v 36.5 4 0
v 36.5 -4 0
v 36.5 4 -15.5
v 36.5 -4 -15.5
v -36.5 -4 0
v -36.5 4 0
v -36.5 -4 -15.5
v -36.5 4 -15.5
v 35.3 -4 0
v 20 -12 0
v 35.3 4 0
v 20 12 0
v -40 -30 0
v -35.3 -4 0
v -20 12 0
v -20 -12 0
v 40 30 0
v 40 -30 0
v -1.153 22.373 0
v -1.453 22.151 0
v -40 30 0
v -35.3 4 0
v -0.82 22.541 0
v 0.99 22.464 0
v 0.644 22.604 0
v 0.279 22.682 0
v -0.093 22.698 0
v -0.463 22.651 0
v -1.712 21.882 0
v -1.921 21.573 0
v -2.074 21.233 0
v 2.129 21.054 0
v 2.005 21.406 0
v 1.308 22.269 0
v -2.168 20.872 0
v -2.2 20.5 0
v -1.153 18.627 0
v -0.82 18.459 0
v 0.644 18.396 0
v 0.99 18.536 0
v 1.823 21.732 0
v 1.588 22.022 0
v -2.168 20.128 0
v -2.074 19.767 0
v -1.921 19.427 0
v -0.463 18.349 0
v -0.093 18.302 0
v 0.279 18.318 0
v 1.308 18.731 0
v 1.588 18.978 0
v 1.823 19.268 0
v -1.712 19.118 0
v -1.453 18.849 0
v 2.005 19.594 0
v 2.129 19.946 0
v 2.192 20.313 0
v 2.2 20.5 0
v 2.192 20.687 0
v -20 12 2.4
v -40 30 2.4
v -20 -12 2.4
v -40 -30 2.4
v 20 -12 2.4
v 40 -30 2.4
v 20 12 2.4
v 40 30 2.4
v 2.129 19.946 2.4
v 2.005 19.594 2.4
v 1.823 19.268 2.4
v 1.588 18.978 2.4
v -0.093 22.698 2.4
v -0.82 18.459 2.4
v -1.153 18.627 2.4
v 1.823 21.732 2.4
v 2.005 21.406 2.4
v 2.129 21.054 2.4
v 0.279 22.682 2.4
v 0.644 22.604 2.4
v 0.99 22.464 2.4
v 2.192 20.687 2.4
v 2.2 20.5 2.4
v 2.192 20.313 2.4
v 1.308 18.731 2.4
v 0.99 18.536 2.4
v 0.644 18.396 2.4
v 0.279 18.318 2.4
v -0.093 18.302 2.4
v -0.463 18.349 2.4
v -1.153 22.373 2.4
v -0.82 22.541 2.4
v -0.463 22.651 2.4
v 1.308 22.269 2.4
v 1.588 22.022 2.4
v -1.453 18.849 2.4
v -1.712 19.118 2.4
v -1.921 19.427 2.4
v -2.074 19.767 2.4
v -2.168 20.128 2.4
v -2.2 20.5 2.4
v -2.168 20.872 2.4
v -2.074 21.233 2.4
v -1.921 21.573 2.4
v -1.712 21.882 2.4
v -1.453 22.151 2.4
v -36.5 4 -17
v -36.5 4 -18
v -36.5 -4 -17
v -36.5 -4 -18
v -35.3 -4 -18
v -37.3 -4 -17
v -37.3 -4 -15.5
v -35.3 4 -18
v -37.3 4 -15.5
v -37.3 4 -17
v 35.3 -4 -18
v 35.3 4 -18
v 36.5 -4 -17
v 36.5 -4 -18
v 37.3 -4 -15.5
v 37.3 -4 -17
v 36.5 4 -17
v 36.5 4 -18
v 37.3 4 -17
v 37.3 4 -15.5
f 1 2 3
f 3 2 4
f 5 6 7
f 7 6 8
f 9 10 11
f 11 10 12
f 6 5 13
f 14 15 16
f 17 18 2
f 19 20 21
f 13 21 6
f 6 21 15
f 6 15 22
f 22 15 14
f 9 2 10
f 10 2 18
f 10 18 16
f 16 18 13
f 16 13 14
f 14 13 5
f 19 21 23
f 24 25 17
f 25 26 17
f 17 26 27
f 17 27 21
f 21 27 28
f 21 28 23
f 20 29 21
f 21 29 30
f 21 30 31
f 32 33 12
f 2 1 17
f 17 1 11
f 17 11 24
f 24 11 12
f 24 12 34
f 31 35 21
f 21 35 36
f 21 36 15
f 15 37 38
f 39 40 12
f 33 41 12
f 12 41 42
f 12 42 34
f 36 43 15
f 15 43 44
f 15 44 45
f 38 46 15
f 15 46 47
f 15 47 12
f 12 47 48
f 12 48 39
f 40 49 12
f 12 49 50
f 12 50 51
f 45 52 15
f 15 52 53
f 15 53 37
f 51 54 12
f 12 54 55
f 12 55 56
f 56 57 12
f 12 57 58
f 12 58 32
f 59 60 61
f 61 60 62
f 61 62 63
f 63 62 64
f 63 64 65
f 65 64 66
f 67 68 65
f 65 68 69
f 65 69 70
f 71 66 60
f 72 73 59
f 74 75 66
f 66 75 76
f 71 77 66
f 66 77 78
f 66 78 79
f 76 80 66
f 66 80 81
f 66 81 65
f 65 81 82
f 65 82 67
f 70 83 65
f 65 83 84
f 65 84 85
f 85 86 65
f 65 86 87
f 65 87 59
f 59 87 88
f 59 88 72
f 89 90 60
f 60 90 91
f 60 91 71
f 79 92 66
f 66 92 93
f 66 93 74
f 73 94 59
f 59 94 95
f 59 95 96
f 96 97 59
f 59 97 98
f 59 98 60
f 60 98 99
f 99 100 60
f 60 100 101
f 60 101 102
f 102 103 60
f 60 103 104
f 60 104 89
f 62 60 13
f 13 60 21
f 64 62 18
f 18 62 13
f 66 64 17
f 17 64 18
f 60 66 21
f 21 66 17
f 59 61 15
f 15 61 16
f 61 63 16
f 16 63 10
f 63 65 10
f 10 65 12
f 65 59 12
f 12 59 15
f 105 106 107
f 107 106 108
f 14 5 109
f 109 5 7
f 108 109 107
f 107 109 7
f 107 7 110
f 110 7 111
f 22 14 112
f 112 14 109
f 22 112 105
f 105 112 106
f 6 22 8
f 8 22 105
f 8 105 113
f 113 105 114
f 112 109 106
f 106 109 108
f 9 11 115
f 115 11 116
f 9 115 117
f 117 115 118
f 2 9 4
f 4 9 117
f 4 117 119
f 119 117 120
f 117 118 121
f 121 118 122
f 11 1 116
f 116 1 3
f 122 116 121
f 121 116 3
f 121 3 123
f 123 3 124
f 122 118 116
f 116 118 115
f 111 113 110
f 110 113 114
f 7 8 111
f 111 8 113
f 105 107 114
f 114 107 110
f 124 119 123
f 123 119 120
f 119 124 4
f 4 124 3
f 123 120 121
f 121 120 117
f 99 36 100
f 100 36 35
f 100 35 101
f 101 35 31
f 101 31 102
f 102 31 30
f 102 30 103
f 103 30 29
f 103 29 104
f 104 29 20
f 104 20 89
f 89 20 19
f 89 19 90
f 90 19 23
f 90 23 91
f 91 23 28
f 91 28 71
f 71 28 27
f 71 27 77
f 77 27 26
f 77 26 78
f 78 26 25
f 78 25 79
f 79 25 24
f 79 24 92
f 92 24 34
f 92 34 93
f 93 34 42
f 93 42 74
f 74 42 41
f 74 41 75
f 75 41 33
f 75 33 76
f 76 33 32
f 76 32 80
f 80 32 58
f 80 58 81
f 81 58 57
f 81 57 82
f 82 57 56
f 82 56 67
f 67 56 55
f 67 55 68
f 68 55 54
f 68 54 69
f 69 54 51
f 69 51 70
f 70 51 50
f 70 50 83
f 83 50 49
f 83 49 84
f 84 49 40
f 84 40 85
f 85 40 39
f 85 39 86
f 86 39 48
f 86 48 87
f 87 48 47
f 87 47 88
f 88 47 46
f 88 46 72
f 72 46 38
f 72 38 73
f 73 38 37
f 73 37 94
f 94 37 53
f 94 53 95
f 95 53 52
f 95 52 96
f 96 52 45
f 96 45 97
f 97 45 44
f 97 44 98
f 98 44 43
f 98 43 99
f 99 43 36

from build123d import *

# Parameters (mm, degrees)
SKETCH2_W                  = 80
SKETCH2_H                  = 60
SKETCH2_W_2                = 40
SKETCH2_H_2                = 24
LID_FRAME_DEPTH            = 2.4
SNAP_LEFT_START            = -18
SKETCH3_W                  = 1.2
SKETCH3_H                  = 8
SNAP_LEFT_DEPTH            = 18
SNAP_RIGHT_START           = -18
SKETCH4_W                  = 1.2
SKETCH4_H                  = 8
SNAP_RIGHT_DEPTH           = 18
HOOK_LEFT_START            = -17
SKETCH5_W                  = 0.8
SKETCH5_H                  = 8
HOOK_LEFT_DEPTH            = 1.5
HOOK_RIGHT_START           = -17
SKETCH6_W                  = 0.8
SKETCH6_H                  = 8
HOOK_RIGHT_DEPTH           = 1.5
SKETCH8_R                  = 2.2
SHAFT_CLEARANCE_D4P4_DEPTH = 54.141321022


with BuildPart() as part:
    # Sketch2 → Lid_frame (new body)
    with BuildSketch(Plane.XY):
        Rectangle(SKETCH2_W, SKETCH2_H)
        Rectangle(SKETCH2_W_2, SKETCH2_H_2, mode=Mode.SUBTRACT)
    extrude(amount=LID_FRAME_DEPTH)

    # Sketch3 → Snap_left (add)
    with BuildSketch(Plane.XY.offset(SNAP_LEFT_START)):
        with Locations((-35.9, 0)):
            Rectangle(SKETCH3_W, SKETCH3_H)
    extrude(amount=SNAP_LEFT_DEPTH)

    # Sketch4 → Snap_right (add)
    with BuildSketch(Plane.XY.offset(SNAP_RIGHT_START)):
        with Locations((35.9, 0)):
            Rectangle(SKETCH4_W, SKETCH4_H)
    extrude(amount=SNAP_RIGHT_DEPTH)

    # Sketch5 → Hook_left (add)
    with BuildSketch(Plane.XY.offset(HOOK_LEFT_START)):
        with Locations((-36.9, 0)):
            Rectangle(SKETCH5_W, SKETCH5_H)
    extrude(amount=HOOK_LEFT_DEPTH)

    # Sketch6 → Hook_right (add)
    with BuildSketch(Plane.XY.offset(HOOK_RIGHT_START)):
        with Locations((36.9, 0)):
            Rectangle(SKETCH6_W, SKETCH6_H)
    extrude(amount=HOOK_RIGHT_DEPTH)

    # Sketch8 → Shaft_clearance_D4p4 (cut, through all)
    with BuildSketch(Plane.XY):
        with Locations((0, 20.5)):
            Circle(SKETCH8_R)
    extrude(amount=SHAFT_CLEARANCE_D4P4_DEPTH, mode=Mode.SUBTRACT)


solid = part.part
